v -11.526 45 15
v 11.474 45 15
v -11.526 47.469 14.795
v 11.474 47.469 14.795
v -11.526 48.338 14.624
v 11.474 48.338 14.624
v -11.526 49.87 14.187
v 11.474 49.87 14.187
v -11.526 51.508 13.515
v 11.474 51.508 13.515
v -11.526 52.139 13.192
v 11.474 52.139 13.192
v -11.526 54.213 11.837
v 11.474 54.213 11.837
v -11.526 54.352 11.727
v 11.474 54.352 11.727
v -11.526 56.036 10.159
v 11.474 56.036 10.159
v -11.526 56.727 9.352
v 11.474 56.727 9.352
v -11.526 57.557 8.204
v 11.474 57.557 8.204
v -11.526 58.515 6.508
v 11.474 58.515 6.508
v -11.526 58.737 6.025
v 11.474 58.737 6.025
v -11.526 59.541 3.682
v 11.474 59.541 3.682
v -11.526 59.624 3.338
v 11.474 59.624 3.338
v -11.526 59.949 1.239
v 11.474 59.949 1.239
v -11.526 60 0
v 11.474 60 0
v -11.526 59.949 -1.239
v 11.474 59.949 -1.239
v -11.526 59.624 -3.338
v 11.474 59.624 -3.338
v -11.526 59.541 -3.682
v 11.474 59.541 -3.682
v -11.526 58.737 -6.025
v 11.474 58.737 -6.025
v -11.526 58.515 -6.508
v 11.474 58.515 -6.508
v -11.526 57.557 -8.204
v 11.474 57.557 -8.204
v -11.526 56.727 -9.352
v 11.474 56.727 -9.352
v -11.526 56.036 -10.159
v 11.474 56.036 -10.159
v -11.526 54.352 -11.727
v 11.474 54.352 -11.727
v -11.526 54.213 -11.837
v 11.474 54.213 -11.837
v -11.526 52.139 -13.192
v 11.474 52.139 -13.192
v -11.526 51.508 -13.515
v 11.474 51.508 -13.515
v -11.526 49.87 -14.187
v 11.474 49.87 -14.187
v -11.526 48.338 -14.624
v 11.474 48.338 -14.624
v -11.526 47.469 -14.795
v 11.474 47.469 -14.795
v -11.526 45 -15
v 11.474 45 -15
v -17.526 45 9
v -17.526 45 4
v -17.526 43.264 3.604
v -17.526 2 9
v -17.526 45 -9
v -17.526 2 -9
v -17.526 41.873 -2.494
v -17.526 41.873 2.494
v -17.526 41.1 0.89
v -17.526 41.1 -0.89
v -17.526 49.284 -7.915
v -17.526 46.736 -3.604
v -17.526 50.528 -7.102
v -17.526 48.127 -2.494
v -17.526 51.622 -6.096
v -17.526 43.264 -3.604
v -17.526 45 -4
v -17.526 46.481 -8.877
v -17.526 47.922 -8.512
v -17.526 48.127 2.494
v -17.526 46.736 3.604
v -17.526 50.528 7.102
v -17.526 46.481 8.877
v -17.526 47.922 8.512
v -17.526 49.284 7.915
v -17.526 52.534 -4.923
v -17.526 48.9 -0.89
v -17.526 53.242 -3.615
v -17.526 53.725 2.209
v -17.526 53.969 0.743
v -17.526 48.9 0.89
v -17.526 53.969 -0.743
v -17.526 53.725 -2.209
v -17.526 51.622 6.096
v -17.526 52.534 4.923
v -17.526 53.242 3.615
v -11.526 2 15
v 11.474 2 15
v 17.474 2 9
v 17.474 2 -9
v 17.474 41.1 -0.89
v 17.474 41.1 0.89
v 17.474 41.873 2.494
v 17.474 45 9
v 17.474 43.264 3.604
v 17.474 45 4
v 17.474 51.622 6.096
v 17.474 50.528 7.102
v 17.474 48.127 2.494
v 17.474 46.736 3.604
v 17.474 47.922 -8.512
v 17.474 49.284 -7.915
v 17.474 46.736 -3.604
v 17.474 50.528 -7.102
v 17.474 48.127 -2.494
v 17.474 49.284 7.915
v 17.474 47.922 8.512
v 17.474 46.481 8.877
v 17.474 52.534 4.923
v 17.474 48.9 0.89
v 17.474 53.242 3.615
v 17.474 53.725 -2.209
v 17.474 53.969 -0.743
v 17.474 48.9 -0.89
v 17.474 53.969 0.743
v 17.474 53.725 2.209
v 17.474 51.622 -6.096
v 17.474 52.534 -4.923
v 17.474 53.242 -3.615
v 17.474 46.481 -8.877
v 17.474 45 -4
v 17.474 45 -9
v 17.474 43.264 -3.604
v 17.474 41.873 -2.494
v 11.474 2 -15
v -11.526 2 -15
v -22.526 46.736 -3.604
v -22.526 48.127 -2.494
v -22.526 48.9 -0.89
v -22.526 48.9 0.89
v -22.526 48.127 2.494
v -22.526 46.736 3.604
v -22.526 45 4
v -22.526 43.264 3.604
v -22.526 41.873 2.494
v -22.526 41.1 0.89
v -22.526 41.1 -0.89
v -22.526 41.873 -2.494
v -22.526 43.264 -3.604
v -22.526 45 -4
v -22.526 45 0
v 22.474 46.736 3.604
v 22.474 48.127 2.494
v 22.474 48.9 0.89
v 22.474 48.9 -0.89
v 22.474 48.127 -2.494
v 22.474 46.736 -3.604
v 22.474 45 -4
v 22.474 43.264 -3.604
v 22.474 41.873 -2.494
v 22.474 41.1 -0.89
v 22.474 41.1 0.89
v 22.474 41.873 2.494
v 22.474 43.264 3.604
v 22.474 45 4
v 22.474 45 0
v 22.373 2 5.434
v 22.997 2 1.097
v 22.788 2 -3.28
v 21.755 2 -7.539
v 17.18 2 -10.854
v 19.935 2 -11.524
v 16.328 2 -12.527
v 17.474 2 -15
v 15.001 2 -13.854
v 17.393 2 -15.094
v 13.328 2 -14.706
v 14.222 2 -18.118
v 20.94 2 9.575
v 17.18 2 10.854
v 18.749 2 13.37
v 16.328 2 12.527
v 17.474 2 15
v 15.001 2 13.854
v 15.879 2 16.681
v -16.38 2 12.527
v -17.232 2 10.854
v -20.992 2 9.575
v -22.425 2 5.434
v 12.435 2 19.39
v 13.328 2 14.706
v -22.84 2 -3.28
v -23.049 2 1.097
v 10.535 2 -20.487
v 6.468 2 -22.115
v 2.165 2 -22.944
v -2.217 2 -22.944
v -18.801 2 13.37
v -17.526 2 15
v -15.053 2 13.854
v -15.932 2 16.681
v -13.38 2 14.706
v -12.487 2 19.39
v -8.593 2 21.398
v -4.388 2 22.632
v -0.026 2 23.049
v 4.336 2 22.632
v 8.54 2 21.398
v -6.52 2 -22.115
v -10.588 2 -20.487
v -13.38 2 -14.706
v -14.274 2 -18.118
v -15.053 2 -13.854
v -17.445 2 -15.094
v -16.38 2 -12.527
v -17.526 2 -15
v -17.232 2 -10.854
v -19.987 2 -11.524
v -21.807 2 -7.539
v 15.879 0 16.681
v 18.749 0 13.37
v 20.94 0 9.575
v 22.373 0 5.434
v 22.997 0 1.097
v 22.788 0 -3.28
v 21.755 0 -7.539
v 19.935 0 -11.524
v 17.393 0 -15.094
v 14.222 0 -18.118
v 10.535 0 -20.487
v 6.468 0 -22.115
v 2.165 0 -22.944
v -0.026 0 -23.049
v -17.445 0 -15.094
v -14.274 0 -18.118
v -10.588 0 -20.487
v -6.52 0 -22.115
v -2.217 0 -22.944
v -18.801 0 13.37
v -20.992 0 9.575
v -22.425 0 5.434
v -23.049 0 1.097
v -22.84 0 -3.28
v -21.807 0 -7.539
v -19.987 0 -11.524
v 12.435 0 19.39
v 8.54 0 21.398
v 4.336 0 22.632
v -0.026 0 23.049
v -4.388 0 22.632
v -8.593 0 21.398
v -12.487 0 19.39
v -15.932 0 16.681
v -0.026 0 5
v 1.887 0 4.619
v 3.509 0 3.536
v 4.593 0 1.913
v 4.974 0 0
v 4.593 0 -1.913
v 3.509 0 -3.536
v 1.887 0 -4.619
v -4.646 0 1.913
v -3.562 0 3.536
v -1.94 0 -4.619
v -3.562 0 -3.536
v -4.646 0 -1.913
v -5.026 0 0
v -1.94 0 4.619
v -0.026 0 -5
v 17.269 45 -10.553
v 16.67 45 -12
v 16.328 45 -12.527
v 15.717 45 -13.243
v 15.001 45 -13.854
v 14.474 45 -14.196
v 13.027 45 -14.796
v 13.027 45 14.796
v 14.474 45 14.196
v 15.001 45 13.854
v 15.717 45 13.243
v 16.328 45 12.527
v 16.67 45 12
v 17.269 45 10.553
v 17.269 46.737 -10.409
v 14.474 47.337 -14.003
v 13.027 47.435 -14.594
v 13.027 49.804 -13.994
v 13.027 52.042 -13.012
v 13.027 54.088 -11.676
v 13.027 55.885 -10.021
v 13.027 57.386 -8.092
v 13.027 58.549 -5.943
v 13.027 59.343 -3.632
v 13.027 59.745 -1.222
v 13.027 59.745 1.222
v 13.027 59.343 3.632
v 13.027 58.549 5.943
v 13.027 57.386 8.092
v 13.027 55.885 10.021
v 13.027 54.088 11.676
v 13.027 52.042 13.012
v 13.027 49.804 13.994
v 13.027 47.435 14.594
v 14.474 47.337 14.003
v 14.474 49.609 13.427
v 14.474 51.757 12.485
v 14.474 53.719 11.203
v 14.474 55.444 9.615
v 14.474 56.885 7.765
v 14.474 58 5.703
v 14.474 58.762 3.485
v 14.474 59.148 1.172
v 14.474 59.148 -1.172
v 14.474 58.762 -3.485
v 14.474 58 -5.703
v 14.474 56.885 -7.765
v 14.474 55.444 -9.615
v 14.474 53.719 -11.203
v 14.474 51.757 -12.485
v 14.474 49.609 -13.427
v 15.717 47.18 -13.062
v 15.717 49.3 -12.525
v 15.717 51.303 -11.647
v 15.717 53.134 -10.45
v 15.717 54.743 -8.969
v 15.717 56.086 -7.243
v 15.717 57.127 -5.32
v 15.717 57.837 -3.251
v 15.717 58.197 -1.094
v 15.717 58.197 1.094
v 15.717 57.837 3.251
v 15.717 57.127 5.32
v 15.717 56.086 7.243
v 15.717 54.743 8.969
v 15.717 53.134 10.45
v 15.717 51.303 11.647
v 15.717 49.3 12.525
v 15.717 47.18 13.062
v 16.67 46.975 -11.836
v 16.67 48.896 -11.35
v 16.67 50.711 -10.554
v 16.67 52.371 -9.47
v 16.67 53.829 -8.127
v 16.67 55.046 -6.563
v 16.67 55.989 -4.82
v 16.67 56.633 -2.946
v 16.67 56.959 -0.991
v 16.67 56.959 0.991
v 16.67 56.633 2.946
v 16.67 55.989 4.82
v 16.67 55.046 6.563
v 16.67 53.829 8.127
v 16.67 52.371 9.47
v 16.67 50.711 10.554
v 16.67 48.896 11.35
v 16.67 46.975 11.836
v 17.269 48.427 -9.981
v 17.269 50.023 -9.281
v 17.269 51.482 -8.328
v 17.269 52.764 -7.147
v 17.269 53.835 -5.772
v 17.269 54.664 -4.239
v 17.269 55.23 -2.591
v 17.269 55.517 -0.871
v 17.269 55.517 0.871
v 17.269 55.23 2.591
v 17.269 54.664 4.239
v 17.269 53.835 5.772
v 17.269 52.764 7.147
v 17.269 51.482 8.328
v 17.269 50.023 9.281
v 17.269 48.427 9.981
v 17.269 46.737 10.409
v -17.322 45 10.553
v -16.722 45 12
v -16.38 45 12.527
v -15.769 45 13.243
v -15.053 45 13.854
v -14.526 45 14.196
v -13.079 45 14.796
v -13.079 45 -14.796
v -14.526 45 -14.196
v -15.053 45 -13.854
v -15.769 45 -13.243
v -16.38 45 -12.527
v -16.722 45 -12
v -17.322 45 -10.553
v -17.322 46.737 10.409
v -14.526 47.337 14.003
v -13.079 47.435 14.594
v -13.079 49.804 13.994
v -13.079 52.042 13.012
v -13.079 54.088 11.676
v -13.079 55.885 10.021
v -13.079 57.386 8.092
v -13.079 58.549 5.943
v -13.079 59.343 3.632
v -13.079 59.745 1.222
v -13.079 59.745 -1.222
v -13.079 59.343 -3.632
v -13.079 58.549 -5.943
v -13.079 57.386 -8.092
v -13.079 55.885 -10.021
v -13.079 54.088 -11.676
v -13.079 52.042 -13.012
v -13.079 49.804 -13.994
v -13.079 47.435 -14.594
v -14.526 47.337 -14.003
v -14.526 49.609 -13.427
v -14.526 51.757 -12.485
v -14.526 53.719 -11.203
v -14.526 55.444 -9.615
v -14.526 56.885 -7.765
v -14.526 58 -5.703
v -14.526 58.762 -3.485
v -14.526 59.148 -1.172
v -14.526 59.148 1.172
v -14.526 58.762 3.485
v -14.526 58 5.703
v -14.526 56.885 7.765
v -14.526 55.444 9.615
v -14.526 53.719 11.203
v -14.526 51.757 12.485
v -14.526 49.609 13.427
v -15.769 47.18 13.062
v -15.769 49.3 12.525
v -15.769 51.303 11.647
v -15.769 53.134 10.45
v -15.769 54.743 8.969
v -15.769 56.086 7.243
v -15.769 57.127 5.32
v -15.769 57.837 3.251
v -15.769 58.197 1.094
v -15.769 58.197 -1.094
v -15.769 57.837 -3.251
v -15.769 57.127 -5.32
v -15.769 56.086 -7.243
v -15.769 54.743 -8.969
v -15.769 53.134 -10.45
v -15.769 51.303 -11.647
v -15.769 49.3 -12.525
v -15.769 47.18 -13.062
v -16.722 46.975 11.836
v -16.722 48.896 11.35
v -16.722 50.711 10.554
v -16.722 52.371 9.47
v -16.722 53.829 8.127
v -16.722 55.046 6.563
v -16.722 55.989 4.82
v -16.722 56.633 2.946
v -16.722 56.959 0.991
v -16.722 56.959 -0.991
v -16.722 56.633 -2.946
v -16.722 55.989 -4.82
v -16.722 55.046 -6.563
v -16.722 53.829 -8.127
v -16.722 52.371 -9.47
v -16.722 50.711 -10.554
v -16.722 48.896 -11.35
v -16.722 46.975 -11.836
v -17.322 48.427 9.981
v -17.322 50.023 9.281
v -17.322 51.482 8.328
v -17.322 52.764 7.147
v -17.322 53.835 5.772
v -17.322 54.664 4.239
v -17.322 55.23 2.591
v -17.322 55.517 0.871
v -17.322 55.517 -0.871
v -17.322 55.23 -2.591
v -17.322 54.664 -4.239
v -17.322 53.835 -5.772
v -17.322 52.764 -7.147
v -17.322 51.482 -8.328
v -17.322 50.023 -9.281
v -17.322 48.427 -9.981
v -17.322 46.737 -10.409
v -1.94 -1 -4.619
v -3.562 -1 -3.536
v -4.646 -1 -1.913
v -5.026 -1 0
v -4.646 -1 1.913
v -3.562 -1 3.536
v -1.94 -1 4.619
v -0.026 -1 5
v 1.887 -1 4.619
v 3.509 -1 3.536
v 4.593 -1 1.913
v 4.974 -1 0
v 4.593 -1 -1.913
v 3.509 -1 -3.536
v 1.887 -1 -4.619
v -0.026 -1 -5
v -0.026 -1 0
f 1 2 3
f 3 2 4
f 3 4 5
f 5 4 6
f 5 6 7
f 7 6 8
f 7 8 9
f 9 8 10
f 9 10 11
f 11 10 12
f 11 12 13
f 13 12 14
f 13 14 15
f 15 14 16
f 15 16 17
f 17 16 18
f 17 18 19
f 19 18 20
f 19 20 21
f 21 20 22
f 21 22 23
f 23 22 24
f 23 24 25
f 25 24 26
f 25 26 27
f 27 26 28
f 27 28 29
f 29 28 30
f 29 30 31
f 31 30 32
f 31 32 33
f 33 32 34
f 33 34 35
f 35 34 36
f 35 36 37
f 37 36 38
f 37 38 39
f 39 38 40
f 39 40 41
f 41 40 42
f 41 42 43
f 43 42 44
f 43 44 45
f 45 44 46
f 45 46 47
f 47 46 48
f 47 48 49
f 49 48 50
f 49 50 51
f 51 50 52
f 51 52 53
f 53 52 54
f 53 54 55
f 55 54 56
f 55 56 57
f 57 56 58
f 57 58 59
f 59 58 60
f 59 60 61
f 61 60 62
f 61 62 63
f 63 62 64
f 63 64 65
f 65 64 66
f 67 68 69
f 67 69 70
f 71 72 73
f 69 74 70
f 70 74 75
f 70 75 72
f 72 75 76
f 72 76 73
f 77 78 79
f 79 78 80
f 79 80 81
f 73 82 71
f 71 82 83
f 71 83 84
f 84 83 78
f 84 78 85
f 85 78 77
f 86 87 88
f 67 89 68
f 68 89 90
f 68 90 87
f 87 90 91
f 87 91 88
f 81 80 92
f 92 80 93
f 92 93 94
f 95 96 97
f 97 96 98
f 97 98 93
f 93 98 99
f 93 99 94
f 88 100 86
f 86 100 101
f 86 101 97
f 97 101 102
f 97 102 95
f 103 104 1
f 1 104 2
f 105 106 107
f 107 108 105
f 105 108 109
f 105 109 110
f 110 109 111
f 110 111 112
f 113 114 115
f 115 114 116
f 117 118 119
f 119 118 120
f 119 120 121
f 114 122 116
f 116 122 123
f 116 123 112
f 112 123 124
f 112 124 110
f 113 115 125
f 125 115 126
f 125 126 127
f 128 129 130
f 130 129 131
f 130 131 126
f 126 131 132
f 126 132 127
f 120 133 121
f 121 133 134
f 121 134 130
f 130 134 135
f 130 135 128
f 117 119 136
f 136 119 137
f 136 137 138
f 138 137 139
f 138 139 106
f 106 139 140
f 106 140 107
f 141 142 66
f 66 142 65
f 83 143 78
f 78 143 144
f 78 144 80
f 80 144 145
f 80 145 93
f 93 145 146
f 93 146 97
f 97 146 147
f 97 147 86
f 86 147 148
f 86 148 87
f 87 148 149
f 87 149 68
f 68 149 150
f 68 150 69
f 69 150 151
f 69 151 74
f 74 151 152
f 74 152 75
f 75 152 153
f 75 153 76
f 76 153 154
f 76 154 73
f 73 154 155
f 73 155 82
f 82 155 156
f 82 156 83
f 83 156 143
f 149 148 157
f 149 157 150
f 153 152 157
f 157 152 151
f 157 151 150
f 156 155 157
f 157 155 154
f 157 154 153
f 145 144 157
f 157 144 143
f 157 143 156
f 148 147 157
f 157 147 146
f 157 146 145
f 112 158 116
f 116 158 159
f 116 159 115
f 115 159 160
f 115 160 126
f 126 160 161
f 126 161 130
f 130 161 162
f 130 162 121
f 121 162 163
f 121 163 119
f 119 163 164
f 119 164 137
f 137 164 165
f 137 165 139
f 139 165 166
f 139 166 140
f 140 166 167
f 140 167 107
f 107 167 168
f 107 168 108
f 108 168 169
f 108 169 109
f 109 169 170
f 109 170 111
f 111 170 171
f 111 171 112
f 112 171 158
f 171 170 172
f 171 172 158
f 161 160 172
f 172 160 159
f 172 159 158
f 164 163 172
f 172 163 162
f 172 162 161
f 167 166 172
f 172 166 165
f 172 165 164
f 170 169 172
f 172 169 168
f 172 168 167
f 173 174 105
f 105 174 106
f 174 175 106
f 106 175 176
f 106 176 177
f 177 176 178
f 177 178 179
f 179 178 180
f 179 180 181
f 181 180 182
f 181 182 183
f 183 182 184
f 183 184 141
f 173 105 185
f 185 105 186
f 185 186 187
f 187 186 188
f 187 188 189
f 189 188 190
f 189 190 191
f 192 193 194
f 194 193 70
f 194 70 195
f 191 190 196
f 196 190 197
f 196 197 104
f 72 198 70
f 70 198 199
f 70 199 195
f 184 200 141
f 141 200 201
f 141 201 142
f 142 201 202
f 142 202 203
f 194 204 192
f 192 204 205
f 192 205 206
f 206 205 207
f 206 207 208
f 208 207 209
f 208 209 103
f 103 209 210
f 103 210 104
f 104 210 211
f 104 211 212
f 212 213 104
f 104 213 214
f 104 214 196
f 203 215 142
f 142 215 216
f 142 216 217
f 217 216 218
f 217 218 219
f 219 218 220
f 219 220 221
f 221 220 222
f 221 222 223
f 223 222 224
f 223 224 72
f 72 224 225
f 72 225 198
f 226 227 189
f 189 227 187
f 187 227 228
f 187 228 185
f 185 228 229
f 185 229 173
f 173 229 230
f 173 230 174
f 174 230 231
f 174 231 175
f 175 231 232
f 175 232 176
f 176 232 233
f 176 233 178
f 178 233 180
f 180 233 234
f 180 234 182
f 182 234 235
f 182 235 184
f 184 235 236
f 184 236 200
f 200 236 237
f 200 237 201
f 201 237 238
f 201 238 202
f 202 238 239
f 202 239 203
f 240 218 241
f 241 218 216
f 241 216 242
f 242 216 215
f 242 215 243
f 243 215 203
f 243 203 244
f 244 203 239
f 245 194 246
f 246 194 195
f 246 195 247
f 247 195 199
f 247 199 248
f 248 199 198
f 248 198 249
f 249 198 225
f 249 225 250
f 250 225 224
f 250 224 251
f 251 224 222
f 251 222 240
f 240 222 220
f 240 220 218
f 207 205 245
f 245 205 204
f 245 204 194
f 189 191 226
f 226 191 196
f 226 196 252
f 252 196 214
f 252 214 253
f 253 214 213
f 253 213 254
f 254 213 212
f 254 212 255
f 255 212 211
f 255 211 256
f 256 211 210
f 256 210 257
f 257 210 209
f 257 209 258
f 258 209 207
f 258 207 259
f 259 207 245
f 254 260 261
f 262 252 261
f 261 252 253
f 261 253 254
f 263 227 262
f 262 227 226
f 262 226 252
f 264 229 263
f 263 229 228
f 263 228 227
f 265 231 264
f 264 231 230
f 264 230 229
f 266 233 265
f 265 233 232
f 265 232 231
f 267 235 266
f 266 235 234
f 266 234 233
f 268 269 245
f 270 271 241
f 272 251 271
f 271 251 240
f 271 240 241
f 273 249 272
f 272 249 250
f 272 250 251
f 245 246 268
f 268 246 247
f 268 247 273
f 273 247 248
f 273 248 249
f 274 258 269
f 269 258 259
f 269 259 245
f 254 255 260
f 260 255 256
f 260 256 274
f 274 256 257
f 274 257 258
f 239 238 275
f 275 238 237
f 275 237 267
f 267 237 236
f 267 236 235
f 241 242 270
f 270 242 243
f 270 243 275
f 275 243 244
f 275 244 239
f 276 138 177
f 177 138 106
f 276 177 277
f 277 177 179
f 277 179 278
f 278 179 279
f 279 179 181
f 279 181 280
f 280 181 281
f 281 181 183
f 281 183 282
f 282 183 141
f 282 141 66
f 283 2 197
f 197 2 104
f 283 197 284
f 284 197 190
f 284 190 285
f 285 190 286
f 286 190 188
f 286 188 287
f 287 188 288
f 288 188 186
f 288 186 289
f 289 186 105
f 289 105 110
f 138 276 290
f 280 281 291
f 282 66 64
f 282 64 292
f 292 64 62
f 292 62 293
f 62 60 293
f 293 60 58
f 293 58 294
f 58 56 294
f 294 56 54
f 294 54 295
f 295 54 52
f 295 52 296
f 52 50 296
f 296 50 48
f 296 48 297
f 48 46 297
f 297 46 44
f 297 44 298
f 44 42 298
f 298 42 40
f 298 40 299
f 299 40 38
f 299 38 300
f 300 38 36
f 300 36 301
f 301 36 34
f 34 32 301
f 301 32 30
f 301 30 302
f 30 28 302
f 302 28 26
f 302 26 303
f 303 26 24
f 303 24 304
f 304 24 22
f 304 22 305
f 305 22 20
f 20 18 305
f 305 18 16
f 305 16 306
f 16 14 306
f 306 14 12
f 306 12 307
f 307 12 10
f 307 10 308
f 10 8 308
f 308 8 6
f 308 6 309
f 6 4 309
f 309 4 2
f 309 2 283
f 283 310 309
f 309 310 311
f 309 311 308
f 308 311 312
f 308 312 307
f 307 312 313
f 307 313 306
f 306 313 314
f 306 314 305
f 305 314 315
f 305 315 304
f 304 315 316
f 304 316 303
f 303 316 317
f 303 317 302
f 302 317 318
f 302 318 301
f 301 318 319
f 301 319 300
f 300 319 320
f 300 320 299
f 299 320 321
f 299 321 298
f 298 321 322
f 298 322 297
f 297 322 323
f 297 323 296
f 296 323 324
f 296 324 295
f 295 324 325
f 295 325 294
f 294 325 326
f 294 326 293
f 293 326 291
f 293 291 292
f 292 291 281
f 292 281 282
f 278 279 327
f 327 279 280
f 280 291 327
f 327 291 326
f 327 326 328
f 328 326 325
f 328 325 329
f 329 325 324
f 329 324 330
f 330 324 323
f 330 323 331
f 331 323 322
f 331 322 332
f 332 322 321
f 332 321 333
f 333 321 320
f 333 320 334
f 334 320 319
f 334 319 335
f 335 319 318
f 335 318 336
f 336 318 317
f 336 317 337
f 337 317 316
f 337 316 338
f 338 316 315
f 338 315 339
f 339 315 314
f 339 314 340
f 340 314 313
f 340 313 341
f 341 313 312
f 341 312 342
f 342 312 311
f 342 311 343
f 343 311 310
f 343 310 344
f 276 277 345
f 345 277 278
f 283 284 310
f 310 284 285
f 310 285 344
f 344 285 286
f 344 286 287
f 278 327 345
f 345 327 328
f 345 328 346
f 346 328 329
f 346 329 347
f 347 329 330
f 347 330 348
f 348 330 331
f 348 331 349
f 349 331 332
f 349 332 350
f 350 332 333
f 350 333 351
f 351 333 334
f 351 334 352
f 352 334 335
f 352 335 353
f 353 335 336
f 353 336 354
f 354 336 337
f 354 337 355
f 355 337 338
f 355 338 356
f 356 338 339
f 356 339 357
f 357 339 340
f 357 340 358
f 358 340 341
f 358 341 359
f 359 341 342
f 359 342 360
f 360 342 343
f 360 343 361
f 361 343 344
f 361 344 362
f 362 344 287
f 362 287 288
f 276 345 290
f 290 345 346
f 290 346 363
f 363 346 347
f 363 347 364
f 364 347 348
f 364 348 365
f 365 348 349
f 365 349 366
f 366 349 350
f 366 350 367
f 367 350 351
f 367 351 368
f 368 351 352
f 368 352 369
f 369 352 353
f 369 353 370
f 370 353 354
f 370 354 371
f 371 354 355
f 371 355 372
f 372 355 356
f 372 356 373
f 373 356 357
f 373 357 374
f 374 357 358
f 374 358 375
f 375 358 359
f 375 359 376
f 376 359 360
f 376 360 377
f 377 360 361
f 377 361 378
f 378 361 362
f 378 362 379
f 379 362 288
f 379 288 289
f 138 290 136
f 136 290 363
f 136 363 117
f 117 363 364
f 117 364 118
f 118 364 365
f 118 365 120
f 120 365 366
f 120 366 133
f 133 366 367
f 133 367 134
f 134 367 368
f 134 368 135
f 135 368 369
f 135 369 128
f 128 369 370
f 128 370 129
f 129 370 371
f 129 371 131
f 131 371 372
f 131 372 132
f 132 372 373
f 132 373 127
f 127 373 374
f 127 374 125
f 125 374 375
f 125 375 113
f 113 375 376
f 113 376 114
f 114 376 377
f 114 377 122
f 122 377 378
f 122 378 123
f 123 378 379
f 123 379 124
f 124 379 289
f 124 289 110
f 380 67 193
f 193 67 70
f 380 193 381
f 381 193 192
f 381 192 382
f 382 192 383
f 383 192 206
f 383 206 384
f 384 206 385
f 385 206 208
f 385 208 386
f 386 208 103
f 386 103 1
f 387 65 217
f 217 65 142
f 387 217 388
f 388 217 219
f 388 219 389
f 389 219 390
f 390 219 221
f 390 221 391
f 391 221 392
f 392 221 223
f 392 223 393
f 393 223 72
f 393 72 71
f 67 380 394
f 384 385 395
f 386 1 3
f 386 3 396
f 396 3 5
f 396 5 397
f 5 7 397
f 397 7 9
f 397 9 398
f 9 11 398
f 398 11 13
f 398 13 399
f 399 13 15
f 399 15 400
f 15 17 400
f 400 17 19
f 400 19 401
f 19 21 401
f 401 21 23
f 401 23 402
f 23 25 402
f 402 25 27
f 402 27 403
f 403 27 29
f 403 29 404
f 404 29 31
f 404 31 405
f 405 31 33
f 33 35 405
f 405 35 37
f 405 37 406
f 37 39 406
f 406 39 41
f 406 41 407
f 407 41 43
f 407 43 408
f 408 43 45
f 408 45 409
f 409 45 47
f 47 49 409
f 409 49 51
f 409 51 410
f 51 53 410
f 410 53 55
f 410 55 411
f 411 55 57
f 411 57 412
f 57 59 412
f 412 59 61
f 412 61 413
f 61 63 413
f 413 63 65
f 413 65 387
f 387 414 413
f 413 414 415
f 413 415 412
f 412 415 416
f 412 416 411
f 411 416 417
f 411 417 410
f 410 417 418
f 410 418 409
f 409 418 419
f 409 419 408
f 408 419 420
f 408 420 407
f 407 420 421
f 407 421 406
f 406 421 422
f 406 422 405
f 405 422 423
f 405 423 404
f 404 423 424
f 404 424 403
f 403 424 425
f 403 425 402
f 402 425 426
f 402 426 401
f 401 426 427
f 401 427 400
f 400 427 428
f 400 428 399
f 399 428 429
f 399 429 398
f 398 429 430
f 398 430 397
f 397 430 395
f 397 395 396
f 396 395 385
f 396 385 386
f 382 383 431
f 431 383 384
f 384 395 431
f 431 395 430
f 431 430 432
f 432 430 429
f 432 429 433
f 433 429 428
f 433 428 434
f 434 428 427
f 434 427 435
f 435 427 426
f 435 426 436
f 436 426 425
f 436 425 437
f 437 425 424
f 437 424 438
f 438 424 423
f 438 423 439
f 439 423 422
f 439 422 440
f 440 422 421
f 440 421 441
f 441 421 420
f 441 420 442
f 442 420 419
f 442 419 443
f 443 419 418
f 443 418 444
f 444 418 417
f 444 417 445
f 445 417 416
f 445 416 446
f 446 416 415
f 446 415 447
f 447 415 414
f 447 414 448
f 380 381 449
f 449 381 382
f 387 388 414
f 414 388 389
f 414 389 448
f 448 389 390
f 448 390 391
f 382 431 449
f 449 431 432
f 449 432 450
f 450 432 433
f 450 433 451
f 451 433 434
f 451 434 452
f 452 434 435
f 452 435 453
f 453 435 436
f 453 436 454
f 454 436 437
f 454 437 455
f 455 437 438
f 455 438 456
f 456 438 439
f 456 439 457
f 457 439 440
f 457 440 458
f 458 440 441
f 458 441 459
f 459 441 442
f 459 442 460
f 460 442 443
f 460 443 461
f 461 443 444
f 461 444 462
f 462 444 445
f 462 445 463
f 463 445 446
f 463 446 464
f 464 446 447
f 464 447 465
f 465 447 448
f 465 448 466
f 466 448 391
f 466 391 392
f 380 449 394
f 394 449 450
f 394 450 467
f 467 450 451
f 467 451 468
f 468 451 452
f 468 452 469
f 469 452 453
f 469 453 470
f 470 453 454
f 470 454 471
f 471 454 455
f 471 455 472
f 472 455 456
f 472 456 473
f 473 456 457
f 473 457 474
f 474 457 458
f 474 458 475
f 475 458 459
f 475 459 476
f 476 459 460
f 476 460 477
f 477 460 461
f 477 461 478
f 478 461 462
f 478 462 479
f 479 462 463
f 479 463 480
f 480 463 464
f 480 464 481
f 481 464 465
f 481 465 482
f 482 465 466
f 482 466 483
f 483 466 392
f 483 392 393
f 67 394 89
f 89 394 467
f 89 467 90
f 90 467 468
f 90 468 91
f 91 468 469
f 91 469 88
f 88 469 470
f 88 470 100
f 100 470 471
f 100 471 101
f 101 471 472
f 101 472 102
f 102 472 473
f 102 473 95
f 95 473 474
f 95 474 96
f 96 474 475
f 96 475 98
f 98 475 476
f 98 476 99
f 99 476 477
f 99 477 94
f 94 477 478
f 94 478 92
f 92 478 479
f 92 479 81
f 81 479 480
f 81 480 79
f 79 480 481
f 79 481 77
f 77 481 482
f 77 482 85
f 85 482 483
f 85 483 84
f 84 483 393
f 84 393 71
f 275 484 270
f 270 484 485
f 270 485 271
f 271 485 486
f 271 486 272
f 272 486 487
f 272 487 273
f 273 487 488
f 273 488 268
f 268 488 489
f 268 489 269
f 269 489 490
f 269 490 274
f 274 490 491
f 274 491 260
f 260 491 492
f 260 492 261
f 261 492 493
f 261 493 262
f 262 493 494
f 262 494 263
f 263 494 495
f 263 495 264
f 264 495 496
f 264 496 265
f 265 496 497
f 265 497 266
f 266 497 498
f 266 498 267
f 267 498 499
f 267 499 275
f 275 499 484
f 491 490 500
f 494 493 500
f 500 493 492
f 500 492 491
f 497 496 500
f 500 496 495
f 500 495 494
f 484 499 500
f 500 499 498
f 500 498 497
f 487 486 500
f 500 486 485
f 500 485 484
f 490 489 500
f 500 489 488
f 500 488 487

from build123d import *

# Parameters (mm, degrees)
SKETCH1_W           = 35
SKETCH1_H           = 30
BOSS_EXTRUDE1_DEPTH = 60
SKETCH2_R           = 4
BOSS_EXTRUDE2_DEPTH = 5
SKETCH4_R           = 23.048861143
BOSS_EXTRUDE3_DEPTH = 2
FILLET3_RADIUS      = 15
FILLET3_LENGTH      = 35
FILLET1_R           = 6
SKETCH7_R           = 5
BOSS_EXTRUDE4_DEPTH = 1


with BuildPart() as part:
    # Sketch1 → Boss-Extrude1 (new body)
    with BuildSketch(Plane(origin=(0, 0, 0), x_dir=(1, 0, 0), z_dir=(0, 1, 0))):
        Rectangle(SKETCH1_W, SKETCH1_H)
    extrude(amount=BOSS_EXTRUDE1_DEPTH)

    # Sketch2 → Boss-Extrude2 (add)
    with BuildSketch(Plane(origin=(17.5, 0, 0), x_dir=(0, 0, -1), z_dir=(1, 0, 0))):
        with Locations(Location((0, 45, 0), (0, 0, 180))):
            Circle(SKETCH2_R)
    boss_extrude2 = extrude(amount=BOSS_EXTRUDE2_DEPTH)

    # Mirror1: Boss-Extrude2 across plane
    add(boss_extrude2.mirror(Plane(origin=(0, 0, 0), x_dir=(0, 0, 1), z_dir=(1, 0, 0))))

    # Sketch4 → Boss-Extrude3 (add)
    with BuildSketch(Plane(origin=(0, 0, 0), x_dir=(1, 0, 0), z_dir=(0, 1, 0))):
        with Locations(Location((0, 0, 0), (0, 0, 40.601294645))):
            Circle(SKETCH4_R)
    extrude(amount=BOSS_EXTRUDE3_DEPTH)

    # Fillet3: full round fillet: the end face becomes a half cylinder, R = half its width
    fillet3_face = Plane((0, 60, 0), x_dir=(1, 0, 0), z_dir=(0, 1, 0))  # on the end face: x along it, z out of the body
    fillet3_slab = fillet3_face.offset(-FILLET3_RADIUS / 2) * Box(FILLET3_LENGTH, 2 * FILLET3_RADIUS, FILLET3_RADIUS, mode=Mode.PRIVATE)  # the body's end, R deep
    fillet3_round = Plane((0, 45, 0), x_dir=(0, 1, 0), z_dir=(1, 0, 0)) * Cylinder(FILLET3_RADIUS, FILLET3_LENGTH, mode=Mode.PRIVATE)  # its axis R under the face
    add(fillet3_slab - fillet3_round, mode=Mode.SUBTRACT)

    # Fillet1
    # the kernel refuses this fillet: 6 mm, written as the material it takes off along each edge
    with BuildSketch(Plane(origin=(-17.5, 2, 15), x_dir=(0, 0, -1), z_dir=(0, 1, 0)), Plane(origin=(17.5, 2, 15), x_dir=(-1, 0, 0), z_dir=(0, 1, 0)), Plane(origin=(17.5, 2, -15), x_dir=(0, 0, 1), z_dir=(0, 1, 0))) as fillet1_piece_1:
        with BuildLine():
            CenterArc((FILLET1_R, -FILLET1_R), FILLET1_R, 90, 90)
            Line((0, -FILLET1_R), (0, 0))
            Line((0, 0), (FILLET1_R, 0))
        make_face()
    extrude(amount=43, mode=Mode.SUBTRACT)
    with BuildSketch(Plane(origin=(-17.5, 2, -15), x_dir=(0, 0, 1), z_dir=(0, 1, 0))) as fillet1_piece_2:
        with BuildLine():
            CenterArc((FILLET1_R, FILLET1_R), FILLET1_R, 180, 90)
            Line((0, FILLET1_R), (0, 0))
            Line((0, 0), (FILLET1_R, 0))
        make_face()
    extrude(amount=43, mode=Mode.SUBTRACT)
    with BuildSketch(Plane(origin=(17.5, 45, 0), x_dir=(0, 0, -1), z_dir=(0, -1, 0))) as fillet1_piece_3:
        with BuildLine():
            CenterArc((15 - FILLET1_R, -FILLET1_R), FILLET1_R, 0, 90)
            Line((15, -FILLET1_R), (15, 0))
            Line((15, 0), (15 - FILLET1_R, 0))
        make_face()
    revolve(axis=Axis((17.5, 45, 0), (1, 0, 0)), revolution_arc=180, mode=Mode.SUBTRACT)
    with BuildSketch(Plane(origin=(-17.5, 45, 0), x_dir=(0, 0, 1), z_dir=(0, -1, 0))) as fillet1_piece_4:
        with BuildLine():
            CenterArc((15 - FILLET1_R, -FILLET1_R), FILLET1_R, 0, 90)
            Line((15, -FILLET1_R), (15, 0))
            Line((15, 0), (15 - FILLET1_R, 0))
        make_face()
    revolve(axis=Axis((-17.5, 45, 0), (-1, 0, 0)), revolution_arc=180, mode=Mode.SUBTRACT)

    # Sketch7 → Boss-Extrude4 (add)
    with BuildSketch(Plane.XZ):
        with Locations(Location((0, 0, 0), (0, 0, 270))):
            Circle(SKETCH7_R)
    extrude(amount=BOSS_EXTRUDE4_DEPTH)


solid = part.part
